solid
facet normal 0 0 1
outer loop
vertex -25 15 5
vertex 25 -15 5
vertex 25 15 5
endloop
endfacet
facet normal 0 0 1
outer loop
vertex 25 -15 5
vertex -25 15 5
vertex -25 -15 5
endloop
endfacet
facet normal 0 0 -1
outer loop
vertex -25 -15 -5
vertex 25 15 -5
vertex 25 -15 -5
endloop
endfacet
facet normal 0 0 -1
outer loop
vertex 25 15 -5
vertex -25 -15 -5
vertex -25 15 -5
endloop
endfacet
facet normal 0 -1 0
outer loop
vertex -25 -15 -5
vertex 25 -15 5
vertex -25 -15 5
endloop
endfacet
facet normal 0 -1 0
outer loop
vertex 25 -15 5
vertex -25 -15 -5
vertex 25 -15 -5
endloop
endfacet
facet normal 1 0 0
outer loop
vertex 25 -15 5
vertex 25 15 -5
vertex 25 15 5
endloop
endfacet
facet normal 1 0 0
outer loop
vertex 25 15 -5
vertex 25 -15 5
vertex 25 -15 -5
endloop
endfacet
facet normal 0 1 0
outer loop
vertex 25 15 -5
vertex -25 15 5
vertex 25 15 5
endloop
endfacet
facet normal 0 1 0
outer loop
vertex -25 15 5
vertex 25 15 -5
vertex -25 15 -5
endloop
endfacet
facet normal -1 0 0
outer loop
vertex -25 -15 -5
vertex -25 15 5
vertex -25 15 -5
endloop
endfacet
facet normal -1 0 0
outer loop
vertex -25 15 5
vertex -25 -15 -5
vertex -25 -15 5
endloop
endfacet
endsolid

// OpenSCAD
// Define dimensions for the rectangular block
block_length = 50;  // Length of the block
block_width = 30;   // Width of the block
block_height = 10;  // Height (thickness) of the block

// Create the rectangular block
module rectangular_block() {
    cube([block_length, block_width, block_height], center = true);
}

// Render the rectangular block
rectangular_block();
